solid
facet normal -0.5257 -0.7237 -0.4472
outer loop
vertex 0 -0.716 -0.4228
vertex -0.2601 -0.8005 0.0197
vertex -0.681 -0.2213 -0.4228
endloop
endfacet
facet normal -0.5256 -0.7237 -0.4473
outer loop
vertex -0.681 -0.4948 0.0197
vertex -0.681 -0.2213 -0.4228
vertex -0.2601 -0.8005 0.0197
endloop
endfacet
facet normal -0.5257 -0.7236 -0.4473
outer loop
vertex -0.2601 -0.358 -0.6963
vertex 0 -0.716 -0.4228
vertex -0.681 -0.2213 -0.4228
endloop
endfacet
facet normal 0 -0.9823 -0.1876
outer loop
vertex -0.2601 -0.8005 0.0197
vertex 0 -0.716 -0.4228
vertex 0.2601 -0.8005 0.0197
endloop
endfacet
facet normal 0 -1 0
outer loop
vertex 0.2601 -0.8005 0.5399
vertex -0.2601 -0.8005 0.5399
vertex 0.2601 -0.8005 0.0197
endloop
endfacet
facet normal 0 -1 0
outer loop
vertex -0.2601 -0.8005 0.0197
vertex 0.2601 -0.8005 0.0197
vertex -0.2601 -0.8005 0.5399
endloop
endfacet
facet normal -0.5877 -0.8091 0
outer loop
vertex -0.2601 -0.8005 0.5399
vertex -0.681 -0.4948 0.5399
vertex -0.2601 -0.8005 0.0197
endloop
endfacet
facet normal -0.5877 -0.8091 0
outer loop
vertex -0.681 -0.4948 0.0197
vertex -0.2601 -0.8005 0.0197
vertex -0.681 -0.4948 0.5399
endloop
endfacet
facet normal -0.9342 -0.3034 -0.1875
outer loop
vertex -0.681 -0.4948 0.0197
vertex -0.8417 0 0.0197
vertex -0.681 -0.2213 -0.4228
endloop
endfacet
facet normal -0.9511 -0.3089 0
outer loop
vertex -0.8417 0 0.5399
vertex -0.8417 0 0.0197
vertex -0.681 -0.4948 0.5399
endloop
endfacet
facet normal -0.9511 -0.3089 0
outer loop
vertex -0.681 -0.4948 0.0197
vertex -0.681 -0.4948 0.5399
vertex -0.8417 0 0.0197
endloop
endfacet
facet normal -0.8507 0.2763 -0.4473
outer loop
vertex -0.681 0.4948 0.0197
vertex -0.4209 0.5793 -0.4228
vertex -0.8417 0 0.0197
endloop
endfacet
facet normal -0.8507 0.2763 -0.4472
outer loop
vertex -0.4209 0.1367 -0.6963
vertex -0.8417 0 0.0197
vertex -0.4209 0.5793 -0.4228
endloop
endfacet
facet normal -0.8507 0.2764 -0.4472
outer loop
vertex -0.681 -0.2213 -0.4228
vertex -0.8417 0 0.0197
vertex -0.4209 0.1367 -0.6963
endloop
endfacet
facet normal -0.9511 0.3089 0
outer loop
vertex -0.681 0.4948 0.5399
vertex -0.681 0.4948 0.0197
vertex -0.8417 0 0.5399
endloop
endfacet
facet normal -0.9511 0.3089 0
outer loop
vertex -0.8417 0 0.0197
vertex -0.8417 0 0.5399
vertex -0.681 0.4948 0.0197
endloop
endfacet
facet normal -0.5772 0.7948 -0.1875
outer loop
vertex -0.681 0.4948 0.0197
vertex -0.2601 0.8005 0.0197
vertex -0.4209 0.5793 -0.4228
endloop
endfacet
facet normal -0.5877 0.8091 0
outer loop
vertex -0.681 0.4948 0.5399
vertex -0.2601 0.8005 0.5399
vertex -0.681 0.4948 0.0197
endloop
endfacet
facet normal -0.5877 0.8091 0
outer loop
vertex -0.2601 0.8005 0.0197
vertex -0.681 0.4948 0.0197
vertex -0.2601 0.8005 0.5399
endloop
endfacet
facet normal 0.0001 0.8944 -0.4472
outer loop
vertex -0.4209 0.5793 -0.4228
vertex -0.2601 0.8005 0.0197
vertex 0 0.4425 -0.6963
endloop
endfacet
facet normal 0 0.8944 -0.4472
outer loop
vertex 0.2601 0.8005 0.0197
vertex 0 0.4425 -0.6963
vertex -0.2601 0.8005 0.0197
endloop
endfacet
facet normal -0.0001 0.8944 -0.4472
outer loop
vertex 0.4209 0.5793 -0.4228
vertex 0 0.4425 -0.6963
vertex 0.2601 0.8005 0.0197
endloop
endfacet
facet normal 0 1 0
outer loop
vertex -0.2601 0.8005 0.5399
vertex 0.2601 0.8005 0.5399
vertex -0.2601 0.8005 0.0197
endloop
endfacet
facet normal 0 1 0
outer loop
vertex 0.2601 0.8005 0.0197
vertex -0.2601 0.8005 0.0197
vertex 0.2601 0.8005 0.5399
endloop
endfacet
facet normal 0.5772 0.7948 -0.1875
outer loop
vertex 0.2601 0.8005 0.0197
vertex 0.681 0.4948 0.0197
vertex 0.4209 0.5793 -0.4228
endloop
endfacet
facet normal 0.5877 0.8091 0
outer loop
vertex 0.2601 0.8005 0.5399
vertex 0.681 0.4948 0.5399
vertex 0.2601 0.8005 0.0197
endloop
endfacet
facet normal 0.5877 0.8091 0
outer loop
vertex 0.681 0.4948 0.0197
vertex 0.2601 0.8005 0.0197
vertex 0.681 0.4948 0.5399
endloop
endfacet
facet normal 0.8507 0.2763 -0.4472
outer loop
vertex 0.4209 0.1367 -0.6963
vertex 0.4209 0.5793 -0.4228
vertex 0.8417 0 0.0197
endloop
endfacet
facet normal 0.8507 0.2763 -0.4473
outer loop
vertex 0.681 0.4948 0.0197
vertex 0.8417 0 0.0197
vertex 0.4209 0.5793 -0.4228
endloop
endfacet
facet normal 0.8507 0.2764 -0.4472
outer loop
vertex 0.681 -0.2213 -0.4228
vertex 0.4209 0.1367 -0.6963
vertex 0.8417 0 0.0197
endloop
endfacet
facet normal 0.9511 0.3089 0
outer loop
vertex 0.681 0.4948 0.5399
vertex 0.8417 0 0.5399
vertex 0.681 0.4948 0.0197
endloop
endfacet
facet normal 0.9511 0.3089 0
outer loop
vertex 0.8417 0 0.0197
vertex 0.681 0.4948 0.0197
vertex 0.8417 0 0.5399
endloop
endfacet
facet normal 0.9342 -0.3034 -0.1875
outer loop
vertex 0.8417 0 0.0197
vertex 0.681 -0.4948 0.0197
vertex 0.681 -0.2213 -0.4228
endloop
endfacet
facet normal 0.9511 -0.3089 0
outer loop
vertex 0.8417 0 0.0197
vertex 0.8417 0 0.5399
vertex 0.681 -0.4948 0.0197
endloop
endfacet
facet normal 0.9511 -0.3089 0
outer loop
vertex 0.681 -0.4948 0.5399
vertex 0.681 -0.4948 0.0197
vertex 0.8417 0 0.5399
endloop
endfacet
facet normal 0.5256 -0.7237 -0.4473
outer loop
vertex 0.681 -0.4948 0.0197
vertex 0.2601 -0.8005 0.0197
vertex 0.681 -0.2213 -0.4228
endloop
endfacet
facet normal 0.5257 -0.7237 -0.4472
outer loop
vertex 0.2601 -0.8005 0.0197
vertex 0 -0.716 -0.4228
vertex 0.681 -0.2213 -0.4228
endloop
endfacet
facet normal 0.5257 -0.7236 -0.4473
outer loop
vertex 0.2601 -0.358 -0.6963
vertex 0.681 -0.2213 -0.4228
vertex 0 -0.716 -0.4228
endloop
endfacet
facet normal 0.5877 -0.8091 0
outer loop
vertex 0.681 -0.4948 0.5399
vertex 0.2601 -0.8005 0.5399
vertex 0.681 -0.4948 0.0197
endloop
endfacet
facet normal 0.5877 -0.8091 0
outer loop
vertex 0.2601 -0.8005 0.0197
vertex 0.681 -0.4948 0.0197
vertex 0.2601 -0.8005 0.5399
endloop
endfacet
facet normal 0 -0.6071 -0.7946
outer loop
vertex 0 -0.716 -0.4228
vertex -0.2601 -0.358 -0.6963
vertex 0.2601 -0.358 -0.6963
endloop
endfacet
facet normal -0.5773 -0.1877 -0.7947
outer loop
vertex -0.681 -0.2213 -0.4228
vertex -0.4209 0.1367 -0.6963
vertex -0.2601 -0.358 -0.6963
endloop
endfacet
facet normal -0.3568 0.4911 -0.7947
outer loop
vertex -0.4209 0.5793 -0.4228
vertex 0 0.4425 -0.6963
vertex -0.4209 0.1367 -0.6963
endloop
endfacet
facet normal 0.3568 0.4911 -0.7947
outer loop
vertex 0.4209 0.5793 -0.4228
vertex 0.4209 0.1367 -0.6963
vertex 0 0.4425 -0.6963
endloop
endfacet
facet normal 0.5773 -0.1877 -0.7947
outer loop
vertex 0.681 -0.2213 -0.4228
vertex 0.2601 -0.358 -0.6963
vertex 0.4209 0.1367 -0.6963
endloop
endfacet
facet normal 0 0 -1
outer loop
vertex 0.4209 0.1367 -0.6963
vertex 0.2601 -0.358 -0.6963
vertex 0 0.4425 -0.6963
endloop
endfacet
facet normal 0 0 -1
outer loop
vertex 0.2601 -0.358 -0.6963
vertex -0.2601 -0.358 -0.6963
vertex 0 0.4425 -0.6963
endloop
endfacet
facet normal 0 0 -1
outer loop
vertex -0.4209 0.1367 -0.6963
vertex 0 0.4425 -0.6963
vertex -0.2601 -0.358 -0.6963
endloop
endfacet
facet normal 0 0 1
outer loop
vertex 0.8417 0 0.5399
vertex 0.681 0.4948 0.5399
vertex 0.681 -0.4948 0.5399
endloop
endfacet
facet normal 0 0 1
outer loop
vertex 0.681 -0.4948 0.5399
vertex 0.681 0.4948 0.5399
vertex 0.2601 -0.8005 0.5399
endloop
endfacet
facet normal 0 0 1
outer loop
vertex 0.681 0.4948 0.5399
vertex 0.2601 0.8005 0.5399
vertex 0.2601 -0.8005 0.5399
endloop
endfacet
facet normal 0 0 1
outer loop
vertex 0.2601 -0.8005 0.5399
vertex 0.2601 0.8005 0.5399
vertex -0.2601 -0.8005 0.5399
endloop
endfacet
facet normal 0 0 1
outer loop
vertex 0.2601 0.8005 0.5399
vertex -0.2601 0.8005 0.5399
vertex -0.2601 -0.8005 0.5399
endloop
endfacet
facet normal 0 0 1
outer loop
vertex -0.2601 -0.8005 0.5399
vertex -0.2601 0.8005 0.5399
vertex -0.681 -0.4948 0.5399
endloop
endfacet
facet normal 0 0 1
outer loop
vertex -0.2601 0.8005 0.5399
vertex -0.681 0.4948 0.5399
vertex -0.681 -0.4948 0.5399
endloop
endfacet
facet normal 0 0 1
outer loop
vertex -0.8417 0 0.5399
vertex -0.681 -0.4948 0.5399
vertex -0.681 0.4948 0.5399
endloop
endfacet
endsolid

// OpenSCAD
polyhedron( points = [[-0.260108388598471, -0.800531306947504, 0.0196843724171696], [-0.680972602868515, -0.494755556718565, 0.0196843724171696], [-0.841728428340418, 4.71008994928246e-11, 0.0196843724171696], [-0.680972603576853, 0.494755556798329, 0.0196843724171696], [-0.260108389744586, 0.800531306989476, 0.0196843724171696], [0.260108388129845, 0.800531306989481, 0.0196843724171696], [0.680972602427343, 0.494755556798329, 0.0196843724171696], [0.841728427943673, 4.71008994928246e-11, 0.0196843724171696], [0.680972603224539, -0.494755556718562, 0.0196843724171696], [0.260108389419726, -0.800531306947504, 0.0196843724171696], [4.2411185741969e-10, -0.716016967955382, -0.42283845027999], [-0.680972602855763, -0.221261411328134, -0.422838450058571], [-0.420864213664585, 0.579269895192064, -0.422838450300881], [0.420864214611685, 0.579269895100631, -0.422838450300881], [0.680972603539364, -0.221261411581308, -0.422838450300881], [-0.260108388640725, -0.358008483836564, -0.696332595306999], [-0.420864213674763, 0.136747072469841, -0.696332595537075], [4.54156931636339e-10, 0.442522822475255, -0.696332595537075], [0.42086421452292, 0.136747072387044, -0.696332595537075], [0.260108389363457, -0.358008483679175, -0.696332595223983], [-0.260108388575115, -0.800531306875621, 0.539901150435366], [0.260108389394555, -0.800531306875621, 0.539901150340128], [0.680972603163388, -0.494755556674136, 0.539901150435366], [0.841728427889748, 1.13740771300271e-10, 0.53990115041201], [0.680972602366197, 0.494755556753902, 0.539901150435366], [0.260108388049803, 0.800531306958783, 0.53990115041201], [-0.26010838972123, 0.800531306917597, 0.539901150435366], [-0.680972603572392, 0.494755556712717, 0.53990115041201], [-0.841728428264836, 4.71008994928246e-11, 0.539901150435366], [-0.680972602826264, -0.494755556660411, 0.539901150458724]], faces = [[0, 1, 11, 15, 10], [0, 10, 9], [0, 9, 21, 20], [0, 20, 29, 1], [1, 2, 11], [1, 29, 28, 2], [2, 3, 12, 16, 11], [2, 28, 27, 3], [3, 4, 12], [3, 27, 26, 4], [4, 5, 13, 17, 12], [4, 26, 25, 5], [5, 6, 13], [5, 25, 24, 6], [6, 7, 14, 18, 13], [6, 24, 23, 7], [7, 8, 14], [7, 23, 22, 8], [8, 9, 10, 19, 14], [8, 22, 21, 9], [10, 15, 19], [11, 16, 15], [12, 17, 16], [13, 18, 17], [14, 19, 18], [15, 16, 17, 18, 19], [20, 21, 22, 23, 24, 25, 26, 27, 28, 29]]);
